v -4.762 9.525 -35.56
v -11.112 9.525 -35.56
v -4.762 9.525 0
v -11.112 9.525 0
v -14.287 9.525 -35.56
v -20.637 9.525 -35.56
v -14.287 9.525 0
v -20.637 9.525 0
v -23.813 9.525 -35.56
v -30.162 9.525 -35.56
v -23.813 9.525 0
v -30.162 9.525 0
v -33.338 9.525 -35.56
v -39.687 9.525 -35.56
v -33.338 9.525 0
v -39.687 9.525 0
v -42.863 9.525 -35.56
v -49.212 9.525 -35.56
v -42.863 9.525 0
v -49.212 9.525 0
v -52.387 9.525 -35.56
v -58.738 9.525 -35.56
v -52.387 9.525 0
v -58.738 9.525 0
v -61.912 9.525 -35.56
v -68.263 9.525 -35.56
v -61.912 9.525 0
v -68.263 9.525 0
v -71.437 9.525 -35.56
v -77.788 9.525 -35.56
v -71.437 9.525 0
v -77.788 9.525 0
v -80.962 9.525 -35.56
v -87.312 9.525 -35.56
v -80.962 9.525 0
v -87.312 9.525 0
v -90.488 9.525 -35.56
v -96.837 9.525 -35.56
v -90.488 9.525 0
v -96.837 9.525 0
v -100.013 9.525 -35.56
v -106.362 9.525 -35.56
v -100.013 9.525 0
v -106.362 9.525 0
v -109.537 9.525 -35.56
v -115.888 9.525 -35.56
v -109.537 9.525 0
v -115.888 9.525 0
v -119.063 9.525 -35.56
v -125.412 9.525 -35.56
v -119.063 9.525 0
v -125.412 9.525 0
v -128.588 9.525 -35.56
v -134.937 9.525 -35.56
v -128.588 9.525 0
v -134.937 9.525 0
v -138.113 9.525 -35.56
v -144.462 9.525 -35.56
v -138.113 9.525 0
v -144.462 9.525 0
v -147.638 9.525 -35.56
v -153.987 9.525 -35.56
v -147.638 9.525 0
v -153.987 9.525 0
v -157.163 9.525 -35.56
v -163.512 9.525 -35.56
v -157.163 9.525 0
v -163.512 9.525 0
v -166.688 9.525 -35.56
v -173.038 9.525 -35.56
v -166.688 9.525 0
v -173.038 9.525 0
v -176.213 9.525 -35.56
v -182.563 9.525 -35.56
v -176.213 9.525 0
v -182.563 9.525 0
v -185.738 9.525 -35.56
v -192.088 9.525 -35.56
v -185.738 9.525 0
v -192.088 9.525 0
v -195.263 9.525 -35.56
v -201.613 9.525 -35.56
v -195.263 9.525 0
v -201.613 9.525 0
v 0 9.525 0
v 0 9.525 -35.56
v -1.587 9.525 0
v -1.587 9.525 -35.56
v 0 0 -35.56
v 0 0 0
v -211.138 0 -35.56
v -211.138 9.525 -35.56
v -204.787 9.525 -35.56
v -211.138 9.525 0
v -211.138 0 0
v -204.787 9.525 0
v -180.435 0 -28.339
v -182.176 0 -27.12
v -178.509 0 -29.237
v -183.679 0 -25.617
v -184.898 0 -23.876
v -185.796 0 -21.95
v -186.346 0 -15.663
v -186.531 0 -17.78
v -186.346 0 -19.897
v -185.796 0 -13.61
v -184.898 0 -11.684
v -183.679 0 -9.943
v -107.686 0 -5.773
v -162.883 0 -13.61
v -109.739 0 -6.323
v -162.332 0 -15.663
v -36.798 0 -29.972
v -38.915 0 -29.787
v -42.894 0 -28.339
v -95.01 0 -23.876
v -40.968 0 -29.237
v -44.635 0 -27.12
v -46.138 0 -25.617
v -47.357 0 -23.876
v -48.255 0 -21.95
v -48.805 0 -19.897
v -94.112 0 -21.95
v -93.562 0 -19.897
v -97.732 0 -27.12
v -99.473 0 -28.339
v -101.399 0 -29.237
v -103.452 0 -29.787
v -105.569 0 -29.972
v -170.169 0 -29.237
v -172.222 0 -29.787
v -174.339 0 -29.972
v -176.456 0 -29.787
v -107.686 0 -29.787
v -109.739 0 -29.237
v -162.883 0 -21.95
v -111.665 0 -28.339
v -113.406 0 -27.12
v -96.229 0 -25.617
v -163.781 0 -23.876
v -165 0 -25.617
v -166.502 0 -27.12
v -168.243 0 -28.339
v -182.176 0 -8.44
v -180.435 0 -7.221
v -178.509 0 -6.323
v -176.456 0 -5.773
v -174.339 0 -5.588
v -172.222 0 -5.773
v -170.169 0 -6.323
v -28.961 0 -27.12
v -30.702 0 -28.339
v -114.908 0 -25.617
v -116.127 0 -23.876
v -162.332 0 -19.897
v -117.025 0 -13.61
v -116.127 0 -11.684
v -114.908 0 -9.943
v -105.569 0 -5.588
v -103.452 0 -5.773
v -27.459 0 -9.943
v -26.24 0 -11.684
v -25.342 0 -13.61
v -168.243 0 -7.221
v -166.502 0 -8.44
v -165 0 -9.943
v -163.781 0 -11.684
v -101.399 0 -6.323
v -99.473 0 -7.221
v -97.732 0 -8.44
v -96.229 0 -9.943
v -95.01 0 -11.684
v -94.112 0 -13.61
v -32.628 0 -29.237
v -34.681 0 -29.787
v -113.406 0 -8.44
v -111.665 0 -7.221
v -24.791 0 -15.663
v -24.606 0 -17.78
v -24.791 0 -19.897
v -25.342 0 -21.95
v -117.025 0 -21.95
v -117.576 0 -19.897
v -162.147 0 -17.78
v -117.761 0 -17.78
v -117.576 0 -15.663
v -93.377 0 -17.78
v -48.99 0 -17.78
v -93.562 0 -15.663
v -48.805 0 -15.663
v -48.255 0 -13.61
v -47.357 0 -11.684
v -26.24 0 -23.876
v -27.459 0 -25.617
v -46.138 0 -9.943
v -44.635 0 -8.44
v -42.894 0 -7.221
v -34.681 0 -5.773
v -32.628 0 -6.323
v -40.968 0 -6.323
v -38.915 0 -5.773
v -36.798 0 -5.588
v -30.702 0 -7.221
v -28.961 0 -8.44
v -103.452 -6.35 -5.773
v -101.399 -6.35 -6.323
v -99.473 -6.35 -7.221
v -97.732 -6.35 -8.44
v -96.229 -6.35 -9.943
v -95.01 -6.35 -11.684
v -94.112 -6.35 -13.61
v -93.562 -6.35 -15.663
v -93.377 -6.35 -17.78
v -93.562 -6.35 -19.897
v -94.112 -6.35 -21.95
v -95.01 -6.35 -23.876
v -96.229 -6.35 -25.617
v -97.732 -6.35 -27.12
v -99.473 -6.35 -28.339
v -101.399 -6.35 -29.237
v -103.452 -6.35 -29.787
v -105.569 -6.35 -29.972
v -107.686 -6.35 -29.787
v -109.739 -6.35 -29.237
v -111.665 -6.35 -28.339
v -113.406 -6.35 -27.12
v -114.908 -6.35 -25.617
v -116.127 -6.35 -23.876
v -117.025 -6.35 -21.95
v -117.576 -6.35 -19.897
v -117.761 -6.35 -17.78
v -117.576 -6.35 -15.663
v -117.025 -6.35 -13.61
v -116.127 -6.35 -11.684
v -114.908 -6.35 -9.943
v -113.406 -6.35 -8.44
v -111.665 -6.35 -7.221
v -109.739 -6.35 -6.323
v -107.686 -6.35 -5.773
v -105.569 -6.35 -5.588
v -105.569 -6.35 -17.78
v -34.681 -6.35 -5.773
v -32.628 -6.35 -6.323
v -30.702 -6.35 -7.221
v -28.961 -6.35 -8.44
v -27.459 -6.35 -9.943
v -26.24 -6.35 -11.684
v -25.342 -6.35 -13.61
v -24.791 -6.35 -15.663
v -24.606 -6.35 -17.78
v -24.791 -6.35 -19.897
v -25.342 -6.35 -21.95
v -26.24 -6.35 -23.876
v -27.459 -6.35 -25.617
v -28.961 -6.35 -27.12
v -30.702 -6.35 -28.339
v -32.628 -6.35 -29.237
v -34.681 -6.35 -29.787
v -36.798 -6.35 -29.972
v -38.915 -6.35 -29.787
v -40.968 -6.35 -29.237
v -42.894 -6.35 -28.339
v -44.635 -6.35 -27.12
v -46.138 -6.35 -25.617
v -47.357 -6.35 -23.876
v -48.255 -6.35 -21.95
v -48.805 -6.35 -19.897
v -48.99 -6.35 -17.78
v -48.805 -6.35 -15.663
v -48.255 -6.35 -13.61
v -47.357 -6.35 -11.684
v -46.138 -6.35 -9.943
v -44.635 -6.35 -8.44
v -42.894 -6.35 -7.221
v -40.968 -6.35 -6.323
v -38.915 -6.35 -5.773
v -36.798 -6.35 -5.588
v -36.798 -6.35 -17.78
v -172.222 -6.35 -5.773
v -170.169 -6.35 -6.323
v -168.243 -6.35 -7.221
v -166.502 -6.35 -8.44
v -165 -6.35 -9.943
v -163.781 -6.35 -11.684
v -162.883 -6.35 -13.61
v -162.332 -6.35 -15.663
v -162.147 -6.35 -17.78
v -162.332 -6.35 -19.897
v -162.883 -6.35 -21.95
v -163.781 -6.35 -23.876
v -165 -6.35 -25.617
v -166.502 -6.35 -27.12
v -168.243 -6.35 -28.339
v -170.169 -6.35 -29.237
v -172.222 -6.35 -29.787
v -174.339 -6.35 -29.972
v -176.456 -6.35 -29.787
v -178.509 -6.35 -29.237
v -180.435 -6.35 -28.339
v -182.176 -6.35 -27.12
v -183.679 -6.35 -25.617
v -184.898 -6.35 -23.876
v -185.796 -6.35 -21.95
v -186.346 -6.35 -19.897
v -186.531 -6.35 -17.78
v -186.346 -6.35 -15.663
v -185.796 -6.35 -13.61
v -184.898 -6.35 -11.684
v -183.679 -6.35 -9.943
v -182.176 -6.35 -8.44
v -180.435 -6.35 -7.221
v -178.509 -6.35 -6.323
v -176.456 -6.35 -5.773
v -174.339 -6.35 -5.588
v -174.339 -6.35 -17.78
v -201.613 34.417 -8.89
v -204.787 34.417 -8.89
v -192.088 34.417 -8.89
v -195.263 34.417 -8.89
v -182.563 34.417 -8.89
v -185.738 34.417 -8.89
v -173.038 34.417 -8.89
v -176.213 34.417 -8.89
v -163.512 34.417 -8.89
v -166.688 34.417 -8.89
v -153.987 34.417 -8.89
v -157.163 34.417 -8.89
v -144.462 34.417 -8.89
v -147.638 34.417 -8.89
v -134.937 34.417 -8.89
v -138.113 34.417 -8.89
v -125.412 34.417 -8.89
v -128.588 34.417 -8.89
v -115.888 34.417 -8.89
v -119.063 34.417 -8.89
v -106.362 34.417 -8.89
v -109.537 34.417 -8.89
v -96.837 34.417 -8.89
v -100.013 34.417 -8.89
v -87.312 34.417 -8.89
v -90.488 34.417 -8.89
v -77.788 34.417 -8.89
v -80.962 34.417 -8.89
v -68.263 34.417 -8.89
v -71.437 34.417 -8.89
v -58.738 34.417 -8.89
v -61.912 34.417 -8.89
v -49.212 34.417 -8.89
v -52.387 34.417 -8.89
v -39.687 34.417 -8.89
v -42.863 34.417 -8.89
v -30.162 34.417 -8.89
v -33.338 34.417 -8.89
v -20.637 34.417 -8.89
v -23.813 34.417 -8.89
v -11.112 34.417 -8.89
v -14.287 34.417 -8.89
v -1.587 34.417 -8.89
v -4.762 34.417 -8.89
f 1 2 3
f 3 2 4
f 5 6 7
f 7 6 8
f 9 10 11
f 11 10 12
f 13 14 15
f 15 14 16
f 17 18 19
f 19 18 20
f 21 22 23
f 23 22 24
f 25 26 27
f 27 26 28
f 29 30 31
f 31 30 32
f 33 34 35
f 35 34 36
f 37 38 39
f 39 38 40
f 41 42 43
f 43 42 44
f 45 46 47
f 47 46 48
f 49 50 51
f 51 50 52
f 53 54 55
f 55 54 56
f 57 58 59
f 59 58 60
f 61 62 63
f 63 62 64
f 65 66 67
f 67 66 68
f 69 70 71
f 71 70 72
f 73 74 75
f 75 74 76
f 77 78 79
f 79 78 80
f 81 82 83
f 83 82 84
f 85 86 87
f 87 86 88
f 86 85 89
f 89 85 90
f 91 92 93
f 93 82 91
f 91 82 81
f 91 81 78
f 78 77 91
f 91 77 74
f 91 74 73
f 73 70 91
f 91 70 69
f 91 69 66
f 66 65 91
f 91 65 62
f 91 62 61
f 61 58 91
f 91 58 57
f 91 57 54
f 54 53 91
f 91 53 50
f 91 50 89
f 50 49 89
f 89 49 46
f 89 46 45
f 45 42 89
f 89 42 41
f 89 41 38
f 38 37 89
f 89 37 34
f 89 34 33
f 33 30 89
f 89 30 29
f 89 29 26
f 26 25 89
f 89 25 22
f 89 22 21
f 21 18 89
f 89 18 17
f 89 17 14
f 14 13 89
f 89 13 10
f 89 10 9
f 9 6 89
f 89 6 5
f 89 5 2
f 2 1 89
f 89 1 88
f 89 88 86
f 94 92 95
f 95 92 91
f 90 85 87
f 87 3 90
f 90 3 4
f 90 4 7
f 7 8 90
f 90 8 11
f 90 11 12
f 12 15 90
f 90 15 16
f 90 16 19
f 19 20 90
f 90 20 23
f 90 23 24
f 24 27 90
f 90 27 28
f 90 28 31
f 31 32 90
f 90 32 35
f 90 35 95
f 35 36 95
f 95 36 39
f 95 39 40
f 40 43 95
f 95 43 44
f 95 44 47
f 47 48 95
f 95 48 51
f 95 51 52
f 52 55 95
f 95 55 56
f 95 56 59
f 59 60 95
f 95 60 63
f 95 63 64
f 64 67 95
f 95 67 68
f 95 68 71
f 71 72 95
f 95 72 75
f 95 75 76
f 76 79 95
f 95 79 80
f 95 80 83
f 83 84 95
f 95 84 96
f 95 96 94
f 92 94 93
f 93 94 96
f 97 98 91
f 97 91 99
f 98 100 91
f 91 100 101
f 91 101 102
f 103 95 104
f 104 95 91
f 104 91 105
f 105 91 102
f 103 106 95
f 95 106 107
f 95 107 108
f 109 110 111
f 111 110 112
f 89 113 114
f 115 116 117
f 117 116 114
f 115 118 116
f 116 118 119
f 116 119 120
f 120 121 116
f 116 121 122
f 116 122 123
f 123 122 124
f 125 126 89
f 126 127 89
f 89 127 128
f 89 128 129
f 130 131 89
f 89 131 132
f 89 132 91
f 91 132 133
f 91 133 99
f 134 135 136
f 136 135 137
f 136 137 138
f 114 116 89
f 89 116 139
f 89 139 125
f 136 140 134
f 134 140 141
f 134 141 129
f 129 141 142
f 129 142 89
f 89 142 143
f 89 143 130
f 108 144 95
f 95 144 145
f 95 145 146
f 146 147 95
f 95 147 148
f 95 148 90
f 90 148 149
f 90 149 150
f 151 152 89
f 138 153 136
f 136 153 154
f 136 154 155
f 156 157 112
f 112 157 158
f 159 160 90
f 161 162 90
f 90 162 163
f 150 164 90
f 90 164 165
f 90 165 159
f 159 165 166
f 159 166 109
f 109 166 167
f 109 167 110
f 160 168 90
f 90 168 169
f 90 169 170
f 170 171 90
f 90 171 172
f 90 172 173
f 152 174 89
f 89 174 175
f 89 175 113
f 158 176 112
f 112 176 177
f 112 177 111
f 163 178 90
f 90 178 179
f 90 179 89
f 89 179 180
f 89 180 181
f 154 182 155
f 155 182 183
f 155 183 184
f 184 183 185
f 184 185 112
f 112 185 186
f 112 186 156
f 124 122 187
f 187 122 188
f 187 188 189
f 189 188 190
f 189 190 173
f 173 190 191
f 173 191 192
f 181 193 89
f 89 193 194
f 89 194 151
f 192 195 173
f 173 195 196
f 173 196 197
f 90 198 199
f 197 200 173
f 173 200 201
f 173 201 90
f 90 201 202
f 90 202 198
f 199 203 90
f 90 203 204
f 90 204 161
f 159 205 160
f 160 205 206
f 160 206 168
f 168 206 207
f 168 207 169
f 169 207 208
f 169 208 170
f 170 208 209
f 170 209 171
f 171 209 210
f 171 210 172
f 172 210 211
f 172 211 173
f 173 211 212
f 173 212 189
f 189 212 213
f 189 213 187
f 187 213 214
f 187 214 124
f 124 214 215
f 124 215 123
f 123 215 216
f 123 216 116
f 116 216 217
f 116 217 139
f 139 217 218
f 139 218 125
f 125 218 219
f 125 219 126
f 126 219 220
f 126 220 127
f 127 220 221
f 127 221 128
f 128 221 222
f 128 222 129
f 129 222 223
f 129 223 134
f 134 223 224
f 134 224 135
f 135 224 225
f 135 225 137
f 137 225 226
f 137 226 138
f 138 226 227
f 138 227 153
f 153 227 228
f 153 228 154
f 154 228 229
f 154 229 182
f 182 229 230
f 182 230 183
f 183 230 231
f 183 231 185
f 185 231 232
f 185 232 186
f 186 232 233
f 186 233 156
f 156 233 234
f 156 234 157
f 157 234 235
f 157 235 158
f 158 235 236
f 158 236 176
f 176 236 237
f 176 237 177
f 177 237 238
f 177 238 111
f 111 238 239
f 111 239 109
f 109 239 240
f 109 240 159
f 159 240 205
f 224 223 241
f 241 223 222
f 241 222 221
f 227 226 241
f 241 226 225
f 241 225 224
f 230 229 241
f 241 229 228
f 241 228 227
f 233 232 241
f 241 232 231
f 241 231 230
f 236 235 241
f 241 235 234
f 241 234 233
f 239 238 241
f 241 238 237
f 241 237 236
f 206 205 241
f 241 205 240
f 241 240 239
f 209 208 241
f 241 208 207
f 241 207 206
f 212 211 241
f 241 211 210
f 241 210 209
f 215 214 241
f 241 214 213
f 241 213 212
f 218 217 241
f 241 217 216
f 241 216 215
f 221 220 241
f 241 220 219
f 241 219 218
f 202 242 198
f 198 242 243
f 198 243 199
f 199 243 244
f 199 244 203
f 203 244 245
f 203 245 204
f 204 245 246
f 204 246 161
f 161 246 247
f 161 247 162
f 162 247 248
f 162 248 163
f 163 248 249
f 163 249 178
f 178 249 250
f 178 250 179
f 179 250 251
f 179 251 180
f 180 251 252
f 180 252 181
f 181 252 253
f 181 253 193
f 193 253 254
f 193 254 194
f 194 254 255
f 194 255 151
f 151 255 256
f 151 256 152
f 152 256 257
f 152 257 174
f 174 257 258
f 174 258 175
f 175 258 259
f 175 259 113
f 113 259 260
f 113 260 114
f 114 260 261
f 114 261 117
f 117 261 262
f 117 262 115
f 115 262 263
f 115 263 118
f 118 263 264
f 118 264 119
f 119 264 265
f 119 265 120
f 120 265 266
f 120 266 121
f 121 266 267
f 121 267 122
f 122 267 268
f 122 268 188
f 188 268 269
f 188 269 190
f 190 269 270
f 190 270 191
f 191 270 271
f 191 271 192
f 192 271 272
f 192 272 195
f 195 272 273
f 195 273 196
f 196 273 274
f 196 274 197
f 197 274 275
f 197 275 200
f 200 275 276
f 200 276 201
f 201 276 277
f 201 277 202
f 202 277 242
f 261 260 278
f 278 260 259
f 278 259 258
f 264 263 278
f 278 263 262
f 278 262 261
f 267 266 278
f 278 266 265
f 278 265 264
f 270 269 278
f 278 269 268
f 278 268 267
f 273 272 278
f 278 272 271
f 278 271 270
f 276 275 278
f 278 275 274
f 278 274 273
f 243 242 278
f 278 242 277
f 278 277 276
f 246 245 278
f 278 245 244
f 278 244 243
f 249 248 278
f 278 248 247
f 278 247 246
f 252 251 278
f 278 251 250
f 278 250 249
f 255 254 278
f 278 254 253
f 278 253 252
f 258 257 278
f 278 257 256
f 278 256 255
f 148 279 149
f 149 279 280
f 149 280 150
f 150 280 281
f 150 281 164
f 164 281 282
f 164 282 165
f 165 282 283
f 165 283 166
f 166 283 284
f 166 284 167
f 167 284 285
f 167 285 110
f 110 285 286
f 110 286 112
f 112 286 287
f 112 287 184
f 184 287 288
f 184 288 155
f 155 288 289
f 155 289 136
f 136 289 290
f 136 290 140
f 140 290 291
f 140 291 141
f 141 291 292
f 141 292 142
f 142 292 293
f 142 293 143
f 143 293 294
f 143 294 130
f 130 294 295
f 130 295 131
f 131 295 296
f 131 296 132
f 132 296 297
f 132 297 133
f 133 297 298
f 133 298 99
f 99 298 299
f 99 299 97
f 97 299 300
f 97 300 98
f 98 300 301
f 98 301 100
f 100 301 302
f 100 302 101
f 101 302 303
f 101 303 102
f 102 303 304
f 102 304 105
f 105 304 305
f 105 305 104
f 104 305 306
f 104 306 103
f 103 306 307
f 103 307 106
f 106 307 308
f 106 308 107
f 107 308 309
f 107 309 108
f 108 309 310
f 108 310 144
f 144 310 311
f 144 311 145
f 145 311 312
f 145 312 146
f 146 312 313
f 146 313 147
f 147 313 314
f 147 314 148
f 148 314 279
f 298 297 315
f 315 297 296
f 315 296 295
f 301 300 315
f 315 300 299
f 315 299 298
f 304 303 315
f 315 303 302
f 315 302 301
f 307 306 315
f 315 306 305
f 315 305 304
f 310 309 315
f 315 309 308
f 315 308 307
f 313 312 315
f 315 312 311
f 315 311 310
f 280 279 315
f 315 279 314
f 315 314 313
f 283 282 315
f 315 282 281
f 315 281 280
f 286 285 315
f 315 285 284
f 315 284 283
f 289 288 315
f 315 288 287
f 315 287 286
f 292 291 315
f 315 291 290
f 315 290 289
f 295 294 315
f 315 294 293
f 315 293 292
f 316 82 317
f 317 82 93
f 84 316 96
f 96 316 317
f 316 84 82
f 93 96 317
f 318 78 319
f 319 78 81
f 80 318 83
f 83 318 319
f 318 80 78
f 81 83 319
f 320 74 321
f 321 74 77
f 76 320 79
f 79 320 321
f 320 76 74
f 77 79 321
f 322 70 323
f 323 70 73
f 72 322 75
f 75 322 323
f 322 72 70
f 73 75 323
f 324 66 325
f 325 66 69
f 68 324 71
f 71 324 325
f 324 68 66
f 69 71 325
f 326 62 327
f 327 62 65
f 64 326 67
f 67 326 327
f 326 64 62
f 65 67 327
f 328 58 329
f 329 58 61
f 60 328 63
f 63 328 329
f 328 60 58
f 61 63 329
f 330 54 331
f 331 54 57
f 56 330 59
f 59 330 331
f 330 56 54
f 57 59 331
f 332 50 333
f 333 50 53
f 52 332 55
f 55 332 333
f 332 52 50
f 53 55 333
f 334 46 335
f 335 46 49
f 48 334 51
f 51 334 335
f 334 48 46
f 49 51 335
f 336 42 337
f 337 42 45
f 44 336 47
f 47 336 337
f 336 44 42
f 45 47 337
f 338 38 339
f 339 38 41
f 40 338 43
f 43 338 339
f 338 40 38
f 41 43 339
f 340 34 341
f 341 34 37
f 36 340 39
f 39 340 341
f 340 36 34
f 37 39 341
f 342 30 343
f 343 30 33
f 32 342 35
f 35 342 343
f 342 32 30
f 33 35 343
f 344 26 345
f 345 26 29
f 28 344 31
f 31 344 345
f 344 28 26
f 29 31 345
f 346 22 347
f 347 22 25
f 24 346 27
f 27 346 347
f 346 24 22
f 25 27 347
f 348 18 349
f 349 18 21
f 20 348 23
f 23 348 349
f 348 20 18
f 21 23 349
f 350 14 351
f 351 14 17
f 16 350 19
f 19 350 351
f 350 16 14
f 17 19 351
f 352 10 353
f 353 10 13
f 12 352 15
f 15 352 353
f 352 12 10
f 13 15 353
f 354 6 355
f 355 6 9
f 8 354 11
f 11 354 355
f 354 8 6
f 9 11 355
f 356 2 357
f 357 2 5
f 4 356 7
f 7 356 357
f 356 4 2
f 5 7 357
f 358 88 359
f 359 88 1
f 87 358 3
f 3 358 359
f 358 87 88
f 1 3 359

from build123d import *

# Parameters (mm, degrees)
SKETCH1_W           = 211.1375
SKETCH1_H           = 35.56
BOSS_EXTRUDE1_DEPTH = 9.525
SKETCH6_R           = 12.192
BOSS_EXTRUDE4_DEPTH = 6.35
BOSS_EXTRUDE5_DEPTH = 3.175
LPATTERN1_COUNT     = 22
LPATTERN1_PITCH     = 9.525


with BuildPart() as part:
    # Sketch1 → Boss-Extrude1 (new body)
    with BuildSketch(Plane(origin=(0, 0, 0), x_dir=(1, 0, 0), z_dir=(0, 1, 0))):
        with Locations((-105.56875, 17.78)):
            Rectangle(SKETCH1_W, SKETCH1_H)
    extrude(amount=BOSS_EXTRUDE1_DEPTH)

    # Sketch6 → Boss-Extrude4 (add)
    with BuildSketch(Plane(origin=(0, 0, 0), x_dir=(-1, 0, 0), z_dir=(0, -1, 0))):
        with Locations((105.56875, 17.78)):
            Circle(SKETCH6_R)
        with Locations((36.79825, 17.78)):
            Circle(SKETCH6_R)
        with Locations((174.33925, 17.78)):
            Circle(SKETCH6_R)
    extrude(amount=BOSS_EXTRUDE4_DEPTH)

    # Sketch9 → Boss-Extrude5 (add)
    with BuildSketch(Plane.ZY.offset(204.7875)):
        Polygon((-35.56, 9.525), (0, 9.525), (-8.89, 34.417), align=None)
    boss_extrude5 = extrude(amount=-BOSS_EXTRUDE5_DEPTH)

    # LPattern1: Boss-Extrude5 ×22
    with Locations(*[(i * LPATTERN1_PITCH, 0, 0) for i in range(1, LPATTERN1_COUNT)]):
        add(boss_extrude5)


solid = part.part
